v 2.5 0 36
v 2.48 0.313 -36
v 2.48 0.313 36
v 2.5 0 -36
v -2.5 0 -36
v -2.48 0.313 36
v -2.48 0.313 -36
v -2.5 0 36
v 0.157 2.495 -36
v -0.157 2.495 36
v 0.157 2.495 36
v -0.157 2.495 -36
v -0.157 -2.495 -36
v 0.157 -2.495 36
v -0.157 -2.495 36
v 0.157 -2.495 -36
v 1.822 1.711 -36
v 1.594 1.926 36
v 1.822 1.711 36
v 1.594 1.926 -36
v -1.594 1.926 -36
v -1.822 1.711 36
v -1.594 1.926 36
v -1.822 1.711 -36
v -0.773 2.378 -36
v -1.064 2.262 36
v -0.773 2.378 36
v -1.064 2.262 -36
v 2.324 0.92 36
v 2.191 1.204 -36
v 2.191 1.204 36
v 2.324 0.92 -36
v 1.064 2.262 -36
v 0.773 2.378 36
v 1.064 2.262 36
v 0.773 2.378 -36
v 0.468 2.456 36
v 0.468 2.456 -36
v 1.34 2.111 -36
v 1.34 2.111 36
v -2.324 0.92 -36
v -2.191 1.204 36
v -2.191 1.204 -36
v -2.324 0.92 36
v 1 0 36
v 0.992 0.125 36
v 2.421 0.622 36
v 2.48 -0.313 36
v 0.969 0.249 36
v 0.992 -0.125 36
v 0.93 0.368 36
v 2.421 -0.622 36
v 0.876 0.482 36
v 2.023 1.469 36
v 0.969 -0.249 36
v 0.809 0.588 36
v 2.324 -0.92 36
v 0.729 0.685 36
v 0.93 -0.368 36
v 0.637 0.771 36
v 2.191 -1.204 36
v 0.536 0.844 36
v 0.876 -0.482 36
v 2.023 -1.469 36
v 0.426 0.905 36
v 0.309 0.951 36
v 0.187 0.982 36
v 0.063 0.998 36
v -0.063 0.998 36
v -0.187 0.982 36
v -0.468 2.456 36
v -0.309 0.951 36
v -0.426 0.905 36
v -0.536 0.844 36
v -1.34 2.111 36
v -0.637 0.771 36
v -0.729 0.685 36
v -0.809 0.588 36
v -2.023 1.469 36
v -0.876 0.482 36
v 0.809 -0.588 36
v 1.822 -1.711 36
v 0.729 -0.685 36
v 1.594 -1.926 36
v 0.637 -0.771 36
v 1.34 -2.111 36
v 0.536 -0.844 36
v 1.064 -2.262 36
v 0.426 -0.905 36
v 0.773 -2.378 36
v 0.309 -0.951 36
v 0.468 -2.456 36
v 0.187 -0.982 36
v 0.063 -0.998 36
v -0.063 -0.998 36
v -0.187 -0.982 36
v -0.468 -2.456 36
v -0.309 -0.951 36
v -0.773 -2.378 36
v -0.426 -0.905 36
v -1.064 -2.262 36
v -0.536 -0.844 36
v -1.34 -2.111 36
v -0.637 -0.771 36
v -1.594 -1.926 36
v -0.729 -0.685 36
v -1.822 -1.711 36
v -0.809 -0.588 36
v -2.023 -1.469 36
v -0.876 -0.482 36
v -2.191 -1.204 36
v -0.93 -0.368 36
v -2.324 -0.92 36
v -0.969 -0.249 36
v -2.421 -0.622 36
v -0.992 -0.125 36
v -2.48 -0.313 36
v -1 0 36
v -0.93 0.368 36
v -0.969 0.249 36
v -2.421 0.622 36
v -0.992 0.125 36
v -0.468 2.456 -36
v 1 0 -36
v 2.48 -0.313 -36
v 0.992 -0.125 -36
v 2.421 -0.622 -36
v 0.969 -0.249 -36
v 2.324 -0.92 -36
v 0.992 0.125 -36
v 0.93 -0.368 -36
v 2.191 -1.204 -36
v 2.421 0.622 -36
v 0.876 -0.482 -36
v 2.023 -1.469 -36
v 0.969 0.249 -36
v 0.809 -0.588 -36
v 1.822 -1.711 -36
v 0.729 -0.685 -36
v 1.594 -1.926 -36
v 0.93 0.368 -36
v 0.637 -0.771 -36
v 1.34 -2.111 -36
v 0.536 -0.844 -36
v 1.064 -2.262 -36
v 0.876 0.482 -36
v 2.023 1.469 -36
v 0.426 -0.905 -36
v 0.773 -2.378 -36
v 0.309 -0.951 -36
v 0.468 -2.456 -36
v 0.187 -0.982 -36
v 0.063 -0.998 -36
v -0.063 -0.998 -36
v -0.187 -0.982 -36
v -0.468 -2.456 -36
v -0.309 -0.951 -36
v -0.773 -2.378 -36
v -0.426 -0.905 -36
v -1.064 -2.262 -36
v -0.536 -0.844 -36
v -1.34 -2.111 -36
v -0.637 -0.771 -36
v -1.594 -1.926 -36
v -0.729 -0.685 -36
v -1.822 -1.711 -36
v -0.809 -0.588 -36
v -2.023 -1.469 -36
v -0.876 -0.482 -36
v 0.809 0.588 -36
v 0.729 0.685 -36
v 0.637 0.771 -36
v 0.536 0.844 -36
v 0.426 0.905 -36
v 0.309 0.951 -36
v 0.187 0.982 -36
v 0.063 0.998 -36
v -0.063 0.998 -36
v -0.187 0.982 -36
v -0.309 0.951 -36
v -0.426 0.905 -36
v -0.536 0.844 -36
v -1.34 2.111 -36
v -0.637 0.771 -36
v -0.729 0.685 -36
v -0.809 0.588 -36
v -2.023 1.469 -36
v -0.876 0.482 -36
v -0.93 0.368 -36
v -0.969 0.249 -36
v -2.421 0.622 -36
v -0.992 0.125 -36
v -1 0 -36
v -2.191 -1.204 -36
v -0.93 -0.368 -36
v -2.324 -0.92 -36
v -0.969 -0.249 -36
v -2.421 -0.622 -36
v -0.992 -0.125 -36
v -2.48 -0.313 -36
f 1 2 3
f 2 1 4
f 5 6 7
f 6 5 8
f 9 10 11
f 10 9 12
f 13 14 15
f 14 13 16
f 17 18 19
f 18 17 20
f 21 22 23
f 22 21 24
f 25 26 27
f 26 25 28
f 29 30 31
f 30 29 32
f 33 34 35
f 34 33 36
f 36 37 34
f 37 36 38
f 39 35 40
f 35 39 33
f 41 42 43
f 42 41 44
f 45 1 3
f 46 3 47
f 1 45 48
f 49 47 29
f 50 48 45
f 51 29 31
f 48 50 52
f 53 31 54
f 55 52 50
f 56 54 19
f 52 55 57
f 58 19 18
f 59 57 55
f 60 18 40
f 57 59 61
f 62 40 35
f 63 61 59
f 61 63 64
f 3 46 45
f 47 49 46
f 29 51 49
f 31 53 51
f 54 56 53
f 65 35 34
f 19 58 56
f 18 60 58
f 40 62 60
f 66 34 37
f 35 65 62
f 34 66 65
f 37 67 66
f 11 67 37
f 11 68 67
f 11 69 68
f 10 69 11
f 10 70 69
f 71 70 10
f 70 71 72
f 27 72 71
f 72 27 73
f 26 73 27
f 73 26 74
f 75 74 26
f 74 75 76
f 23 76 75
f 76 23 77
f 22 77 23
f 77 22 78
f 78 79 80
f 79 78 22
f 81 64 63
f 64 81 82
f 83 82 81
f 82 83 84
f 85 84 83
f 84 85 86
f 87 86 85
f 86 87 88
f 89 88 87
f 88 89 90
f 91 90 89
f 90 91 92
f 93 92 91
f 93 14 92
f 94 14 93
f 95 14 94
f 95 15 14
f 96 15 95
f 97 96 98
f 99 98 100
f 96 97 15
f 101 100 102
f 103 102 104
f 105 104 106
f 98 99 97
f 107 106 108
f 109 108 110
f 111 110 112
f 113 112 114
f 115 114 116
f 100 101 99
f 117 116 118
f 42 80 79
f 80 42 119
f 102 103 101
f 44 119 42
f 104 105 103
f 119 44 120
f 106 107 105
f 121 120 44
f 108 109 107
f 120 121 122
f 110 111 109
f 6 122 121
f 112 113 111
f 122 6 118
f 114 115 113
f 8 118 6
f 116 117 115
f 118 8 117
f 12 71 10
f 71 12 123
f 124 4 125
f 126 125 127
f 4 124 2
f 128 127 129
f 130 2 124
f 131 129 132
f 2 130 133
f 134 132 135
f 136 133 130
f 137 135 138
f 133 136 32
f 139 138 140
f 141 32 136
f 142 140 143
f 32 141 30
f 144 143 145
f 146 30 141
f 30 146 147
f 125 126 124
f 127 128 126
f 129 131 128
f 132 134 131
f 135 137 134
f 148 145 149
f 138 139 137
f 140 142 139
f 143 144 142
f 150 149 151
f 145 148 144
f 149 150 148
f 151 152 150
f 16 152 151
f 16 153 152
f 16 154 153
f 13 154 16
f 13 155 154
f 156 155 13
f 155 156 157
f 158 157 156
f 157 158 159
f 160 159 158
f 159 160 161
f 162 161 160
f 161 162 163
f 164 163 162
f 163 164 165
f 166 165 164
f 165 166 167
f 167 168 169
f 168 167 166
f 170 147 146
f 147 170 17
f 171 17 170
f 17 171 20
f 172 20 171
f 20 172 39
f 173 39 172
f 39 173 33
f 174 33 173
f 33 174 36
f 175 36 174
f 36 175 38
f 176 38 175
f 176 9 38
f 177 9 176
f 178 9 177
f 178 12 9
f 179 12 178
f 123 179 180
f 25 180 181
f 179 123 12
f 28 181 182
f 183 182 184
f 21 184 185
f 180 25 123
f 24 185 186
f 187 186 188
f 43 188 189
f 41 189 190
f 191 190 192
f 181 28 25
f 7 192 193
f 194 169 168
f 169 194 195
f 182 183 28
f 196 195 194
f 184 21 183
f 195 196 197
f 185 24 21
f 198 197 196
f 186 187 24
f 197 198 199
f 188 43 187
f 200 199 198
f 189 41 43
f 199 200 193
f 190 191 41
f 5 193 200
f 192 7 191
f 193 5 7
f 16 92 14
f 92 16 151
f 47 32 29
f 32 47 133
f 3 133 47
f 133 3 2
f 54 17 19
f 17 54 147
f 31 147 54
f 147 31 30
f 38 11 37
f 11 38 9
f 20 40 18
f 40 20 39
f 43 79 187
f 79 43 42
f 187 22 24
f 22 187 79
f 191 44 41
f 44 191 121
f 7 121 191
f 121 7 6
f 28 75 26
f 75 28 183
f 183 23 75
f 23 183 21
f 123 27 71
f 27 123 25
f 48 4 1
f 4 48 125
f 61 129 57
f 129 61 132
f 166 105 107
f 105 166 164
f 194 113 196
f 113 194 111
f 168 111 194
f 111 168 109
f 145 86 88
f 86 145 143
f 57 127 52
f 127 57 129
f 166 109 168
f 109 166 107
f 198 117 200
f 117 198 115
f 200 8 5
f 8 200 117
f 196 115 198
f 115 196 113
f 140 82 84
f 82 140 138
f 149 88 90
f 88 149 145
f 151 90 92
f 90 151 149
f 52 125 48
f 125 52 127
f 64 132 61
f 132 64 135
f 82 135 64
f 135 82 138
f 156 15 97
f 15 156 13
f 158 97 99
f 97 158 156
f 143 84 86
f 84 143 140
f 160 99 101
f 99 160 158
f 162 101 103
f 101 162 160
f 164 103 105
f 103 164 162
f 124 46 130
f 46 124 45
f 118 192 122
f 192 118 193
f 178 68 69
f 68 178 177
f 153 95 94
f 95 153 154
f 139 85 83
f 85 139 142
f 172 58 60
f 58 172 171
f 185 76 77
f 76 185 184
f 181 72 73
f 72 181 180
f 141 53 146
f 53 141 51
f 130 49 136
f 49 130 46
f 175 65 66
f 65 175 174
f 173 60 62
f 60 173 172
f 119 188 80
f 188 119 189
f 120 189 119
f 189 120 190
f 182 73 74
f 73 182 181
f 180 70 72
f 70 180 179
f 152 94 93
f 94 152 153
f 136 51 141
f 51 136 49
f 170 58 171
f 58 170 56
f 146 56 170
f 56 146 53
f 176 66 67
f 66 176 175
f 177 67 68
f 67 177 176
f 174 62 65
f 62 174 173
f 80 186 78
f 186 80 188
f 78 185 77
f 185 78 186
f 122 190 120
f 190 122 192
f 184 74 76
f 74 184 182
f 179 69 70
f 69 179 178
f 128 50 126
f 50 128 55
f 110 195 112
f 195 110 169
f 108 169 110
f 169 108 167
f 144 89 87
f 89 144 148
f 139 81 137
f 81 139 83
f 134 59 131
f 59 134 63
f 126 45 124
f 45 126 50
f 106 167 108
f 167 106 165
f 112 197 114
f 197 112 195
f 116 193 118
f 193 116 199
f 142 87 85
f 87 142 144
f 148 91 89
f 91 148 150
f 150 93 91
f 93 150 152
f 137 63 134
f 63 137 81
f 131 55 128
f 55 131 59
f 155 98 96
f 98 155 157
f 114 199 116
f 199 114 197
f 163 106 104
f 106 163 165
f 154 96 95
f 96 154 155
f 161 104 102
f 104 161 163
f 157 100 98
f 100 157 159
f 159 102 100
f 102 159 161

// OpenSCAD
$fn = 50;


difference() {
	union() {
		translate(v = [0, 0, -36.0000000000]) {
			cylinder(h = 72, r = 2.5000000000);
		}
	}
	union() {
		translate(v = [0, 0, -100.0000000000]) {
			cylinder(h = 200, r = 1.0000000000);
		}
	}
}
